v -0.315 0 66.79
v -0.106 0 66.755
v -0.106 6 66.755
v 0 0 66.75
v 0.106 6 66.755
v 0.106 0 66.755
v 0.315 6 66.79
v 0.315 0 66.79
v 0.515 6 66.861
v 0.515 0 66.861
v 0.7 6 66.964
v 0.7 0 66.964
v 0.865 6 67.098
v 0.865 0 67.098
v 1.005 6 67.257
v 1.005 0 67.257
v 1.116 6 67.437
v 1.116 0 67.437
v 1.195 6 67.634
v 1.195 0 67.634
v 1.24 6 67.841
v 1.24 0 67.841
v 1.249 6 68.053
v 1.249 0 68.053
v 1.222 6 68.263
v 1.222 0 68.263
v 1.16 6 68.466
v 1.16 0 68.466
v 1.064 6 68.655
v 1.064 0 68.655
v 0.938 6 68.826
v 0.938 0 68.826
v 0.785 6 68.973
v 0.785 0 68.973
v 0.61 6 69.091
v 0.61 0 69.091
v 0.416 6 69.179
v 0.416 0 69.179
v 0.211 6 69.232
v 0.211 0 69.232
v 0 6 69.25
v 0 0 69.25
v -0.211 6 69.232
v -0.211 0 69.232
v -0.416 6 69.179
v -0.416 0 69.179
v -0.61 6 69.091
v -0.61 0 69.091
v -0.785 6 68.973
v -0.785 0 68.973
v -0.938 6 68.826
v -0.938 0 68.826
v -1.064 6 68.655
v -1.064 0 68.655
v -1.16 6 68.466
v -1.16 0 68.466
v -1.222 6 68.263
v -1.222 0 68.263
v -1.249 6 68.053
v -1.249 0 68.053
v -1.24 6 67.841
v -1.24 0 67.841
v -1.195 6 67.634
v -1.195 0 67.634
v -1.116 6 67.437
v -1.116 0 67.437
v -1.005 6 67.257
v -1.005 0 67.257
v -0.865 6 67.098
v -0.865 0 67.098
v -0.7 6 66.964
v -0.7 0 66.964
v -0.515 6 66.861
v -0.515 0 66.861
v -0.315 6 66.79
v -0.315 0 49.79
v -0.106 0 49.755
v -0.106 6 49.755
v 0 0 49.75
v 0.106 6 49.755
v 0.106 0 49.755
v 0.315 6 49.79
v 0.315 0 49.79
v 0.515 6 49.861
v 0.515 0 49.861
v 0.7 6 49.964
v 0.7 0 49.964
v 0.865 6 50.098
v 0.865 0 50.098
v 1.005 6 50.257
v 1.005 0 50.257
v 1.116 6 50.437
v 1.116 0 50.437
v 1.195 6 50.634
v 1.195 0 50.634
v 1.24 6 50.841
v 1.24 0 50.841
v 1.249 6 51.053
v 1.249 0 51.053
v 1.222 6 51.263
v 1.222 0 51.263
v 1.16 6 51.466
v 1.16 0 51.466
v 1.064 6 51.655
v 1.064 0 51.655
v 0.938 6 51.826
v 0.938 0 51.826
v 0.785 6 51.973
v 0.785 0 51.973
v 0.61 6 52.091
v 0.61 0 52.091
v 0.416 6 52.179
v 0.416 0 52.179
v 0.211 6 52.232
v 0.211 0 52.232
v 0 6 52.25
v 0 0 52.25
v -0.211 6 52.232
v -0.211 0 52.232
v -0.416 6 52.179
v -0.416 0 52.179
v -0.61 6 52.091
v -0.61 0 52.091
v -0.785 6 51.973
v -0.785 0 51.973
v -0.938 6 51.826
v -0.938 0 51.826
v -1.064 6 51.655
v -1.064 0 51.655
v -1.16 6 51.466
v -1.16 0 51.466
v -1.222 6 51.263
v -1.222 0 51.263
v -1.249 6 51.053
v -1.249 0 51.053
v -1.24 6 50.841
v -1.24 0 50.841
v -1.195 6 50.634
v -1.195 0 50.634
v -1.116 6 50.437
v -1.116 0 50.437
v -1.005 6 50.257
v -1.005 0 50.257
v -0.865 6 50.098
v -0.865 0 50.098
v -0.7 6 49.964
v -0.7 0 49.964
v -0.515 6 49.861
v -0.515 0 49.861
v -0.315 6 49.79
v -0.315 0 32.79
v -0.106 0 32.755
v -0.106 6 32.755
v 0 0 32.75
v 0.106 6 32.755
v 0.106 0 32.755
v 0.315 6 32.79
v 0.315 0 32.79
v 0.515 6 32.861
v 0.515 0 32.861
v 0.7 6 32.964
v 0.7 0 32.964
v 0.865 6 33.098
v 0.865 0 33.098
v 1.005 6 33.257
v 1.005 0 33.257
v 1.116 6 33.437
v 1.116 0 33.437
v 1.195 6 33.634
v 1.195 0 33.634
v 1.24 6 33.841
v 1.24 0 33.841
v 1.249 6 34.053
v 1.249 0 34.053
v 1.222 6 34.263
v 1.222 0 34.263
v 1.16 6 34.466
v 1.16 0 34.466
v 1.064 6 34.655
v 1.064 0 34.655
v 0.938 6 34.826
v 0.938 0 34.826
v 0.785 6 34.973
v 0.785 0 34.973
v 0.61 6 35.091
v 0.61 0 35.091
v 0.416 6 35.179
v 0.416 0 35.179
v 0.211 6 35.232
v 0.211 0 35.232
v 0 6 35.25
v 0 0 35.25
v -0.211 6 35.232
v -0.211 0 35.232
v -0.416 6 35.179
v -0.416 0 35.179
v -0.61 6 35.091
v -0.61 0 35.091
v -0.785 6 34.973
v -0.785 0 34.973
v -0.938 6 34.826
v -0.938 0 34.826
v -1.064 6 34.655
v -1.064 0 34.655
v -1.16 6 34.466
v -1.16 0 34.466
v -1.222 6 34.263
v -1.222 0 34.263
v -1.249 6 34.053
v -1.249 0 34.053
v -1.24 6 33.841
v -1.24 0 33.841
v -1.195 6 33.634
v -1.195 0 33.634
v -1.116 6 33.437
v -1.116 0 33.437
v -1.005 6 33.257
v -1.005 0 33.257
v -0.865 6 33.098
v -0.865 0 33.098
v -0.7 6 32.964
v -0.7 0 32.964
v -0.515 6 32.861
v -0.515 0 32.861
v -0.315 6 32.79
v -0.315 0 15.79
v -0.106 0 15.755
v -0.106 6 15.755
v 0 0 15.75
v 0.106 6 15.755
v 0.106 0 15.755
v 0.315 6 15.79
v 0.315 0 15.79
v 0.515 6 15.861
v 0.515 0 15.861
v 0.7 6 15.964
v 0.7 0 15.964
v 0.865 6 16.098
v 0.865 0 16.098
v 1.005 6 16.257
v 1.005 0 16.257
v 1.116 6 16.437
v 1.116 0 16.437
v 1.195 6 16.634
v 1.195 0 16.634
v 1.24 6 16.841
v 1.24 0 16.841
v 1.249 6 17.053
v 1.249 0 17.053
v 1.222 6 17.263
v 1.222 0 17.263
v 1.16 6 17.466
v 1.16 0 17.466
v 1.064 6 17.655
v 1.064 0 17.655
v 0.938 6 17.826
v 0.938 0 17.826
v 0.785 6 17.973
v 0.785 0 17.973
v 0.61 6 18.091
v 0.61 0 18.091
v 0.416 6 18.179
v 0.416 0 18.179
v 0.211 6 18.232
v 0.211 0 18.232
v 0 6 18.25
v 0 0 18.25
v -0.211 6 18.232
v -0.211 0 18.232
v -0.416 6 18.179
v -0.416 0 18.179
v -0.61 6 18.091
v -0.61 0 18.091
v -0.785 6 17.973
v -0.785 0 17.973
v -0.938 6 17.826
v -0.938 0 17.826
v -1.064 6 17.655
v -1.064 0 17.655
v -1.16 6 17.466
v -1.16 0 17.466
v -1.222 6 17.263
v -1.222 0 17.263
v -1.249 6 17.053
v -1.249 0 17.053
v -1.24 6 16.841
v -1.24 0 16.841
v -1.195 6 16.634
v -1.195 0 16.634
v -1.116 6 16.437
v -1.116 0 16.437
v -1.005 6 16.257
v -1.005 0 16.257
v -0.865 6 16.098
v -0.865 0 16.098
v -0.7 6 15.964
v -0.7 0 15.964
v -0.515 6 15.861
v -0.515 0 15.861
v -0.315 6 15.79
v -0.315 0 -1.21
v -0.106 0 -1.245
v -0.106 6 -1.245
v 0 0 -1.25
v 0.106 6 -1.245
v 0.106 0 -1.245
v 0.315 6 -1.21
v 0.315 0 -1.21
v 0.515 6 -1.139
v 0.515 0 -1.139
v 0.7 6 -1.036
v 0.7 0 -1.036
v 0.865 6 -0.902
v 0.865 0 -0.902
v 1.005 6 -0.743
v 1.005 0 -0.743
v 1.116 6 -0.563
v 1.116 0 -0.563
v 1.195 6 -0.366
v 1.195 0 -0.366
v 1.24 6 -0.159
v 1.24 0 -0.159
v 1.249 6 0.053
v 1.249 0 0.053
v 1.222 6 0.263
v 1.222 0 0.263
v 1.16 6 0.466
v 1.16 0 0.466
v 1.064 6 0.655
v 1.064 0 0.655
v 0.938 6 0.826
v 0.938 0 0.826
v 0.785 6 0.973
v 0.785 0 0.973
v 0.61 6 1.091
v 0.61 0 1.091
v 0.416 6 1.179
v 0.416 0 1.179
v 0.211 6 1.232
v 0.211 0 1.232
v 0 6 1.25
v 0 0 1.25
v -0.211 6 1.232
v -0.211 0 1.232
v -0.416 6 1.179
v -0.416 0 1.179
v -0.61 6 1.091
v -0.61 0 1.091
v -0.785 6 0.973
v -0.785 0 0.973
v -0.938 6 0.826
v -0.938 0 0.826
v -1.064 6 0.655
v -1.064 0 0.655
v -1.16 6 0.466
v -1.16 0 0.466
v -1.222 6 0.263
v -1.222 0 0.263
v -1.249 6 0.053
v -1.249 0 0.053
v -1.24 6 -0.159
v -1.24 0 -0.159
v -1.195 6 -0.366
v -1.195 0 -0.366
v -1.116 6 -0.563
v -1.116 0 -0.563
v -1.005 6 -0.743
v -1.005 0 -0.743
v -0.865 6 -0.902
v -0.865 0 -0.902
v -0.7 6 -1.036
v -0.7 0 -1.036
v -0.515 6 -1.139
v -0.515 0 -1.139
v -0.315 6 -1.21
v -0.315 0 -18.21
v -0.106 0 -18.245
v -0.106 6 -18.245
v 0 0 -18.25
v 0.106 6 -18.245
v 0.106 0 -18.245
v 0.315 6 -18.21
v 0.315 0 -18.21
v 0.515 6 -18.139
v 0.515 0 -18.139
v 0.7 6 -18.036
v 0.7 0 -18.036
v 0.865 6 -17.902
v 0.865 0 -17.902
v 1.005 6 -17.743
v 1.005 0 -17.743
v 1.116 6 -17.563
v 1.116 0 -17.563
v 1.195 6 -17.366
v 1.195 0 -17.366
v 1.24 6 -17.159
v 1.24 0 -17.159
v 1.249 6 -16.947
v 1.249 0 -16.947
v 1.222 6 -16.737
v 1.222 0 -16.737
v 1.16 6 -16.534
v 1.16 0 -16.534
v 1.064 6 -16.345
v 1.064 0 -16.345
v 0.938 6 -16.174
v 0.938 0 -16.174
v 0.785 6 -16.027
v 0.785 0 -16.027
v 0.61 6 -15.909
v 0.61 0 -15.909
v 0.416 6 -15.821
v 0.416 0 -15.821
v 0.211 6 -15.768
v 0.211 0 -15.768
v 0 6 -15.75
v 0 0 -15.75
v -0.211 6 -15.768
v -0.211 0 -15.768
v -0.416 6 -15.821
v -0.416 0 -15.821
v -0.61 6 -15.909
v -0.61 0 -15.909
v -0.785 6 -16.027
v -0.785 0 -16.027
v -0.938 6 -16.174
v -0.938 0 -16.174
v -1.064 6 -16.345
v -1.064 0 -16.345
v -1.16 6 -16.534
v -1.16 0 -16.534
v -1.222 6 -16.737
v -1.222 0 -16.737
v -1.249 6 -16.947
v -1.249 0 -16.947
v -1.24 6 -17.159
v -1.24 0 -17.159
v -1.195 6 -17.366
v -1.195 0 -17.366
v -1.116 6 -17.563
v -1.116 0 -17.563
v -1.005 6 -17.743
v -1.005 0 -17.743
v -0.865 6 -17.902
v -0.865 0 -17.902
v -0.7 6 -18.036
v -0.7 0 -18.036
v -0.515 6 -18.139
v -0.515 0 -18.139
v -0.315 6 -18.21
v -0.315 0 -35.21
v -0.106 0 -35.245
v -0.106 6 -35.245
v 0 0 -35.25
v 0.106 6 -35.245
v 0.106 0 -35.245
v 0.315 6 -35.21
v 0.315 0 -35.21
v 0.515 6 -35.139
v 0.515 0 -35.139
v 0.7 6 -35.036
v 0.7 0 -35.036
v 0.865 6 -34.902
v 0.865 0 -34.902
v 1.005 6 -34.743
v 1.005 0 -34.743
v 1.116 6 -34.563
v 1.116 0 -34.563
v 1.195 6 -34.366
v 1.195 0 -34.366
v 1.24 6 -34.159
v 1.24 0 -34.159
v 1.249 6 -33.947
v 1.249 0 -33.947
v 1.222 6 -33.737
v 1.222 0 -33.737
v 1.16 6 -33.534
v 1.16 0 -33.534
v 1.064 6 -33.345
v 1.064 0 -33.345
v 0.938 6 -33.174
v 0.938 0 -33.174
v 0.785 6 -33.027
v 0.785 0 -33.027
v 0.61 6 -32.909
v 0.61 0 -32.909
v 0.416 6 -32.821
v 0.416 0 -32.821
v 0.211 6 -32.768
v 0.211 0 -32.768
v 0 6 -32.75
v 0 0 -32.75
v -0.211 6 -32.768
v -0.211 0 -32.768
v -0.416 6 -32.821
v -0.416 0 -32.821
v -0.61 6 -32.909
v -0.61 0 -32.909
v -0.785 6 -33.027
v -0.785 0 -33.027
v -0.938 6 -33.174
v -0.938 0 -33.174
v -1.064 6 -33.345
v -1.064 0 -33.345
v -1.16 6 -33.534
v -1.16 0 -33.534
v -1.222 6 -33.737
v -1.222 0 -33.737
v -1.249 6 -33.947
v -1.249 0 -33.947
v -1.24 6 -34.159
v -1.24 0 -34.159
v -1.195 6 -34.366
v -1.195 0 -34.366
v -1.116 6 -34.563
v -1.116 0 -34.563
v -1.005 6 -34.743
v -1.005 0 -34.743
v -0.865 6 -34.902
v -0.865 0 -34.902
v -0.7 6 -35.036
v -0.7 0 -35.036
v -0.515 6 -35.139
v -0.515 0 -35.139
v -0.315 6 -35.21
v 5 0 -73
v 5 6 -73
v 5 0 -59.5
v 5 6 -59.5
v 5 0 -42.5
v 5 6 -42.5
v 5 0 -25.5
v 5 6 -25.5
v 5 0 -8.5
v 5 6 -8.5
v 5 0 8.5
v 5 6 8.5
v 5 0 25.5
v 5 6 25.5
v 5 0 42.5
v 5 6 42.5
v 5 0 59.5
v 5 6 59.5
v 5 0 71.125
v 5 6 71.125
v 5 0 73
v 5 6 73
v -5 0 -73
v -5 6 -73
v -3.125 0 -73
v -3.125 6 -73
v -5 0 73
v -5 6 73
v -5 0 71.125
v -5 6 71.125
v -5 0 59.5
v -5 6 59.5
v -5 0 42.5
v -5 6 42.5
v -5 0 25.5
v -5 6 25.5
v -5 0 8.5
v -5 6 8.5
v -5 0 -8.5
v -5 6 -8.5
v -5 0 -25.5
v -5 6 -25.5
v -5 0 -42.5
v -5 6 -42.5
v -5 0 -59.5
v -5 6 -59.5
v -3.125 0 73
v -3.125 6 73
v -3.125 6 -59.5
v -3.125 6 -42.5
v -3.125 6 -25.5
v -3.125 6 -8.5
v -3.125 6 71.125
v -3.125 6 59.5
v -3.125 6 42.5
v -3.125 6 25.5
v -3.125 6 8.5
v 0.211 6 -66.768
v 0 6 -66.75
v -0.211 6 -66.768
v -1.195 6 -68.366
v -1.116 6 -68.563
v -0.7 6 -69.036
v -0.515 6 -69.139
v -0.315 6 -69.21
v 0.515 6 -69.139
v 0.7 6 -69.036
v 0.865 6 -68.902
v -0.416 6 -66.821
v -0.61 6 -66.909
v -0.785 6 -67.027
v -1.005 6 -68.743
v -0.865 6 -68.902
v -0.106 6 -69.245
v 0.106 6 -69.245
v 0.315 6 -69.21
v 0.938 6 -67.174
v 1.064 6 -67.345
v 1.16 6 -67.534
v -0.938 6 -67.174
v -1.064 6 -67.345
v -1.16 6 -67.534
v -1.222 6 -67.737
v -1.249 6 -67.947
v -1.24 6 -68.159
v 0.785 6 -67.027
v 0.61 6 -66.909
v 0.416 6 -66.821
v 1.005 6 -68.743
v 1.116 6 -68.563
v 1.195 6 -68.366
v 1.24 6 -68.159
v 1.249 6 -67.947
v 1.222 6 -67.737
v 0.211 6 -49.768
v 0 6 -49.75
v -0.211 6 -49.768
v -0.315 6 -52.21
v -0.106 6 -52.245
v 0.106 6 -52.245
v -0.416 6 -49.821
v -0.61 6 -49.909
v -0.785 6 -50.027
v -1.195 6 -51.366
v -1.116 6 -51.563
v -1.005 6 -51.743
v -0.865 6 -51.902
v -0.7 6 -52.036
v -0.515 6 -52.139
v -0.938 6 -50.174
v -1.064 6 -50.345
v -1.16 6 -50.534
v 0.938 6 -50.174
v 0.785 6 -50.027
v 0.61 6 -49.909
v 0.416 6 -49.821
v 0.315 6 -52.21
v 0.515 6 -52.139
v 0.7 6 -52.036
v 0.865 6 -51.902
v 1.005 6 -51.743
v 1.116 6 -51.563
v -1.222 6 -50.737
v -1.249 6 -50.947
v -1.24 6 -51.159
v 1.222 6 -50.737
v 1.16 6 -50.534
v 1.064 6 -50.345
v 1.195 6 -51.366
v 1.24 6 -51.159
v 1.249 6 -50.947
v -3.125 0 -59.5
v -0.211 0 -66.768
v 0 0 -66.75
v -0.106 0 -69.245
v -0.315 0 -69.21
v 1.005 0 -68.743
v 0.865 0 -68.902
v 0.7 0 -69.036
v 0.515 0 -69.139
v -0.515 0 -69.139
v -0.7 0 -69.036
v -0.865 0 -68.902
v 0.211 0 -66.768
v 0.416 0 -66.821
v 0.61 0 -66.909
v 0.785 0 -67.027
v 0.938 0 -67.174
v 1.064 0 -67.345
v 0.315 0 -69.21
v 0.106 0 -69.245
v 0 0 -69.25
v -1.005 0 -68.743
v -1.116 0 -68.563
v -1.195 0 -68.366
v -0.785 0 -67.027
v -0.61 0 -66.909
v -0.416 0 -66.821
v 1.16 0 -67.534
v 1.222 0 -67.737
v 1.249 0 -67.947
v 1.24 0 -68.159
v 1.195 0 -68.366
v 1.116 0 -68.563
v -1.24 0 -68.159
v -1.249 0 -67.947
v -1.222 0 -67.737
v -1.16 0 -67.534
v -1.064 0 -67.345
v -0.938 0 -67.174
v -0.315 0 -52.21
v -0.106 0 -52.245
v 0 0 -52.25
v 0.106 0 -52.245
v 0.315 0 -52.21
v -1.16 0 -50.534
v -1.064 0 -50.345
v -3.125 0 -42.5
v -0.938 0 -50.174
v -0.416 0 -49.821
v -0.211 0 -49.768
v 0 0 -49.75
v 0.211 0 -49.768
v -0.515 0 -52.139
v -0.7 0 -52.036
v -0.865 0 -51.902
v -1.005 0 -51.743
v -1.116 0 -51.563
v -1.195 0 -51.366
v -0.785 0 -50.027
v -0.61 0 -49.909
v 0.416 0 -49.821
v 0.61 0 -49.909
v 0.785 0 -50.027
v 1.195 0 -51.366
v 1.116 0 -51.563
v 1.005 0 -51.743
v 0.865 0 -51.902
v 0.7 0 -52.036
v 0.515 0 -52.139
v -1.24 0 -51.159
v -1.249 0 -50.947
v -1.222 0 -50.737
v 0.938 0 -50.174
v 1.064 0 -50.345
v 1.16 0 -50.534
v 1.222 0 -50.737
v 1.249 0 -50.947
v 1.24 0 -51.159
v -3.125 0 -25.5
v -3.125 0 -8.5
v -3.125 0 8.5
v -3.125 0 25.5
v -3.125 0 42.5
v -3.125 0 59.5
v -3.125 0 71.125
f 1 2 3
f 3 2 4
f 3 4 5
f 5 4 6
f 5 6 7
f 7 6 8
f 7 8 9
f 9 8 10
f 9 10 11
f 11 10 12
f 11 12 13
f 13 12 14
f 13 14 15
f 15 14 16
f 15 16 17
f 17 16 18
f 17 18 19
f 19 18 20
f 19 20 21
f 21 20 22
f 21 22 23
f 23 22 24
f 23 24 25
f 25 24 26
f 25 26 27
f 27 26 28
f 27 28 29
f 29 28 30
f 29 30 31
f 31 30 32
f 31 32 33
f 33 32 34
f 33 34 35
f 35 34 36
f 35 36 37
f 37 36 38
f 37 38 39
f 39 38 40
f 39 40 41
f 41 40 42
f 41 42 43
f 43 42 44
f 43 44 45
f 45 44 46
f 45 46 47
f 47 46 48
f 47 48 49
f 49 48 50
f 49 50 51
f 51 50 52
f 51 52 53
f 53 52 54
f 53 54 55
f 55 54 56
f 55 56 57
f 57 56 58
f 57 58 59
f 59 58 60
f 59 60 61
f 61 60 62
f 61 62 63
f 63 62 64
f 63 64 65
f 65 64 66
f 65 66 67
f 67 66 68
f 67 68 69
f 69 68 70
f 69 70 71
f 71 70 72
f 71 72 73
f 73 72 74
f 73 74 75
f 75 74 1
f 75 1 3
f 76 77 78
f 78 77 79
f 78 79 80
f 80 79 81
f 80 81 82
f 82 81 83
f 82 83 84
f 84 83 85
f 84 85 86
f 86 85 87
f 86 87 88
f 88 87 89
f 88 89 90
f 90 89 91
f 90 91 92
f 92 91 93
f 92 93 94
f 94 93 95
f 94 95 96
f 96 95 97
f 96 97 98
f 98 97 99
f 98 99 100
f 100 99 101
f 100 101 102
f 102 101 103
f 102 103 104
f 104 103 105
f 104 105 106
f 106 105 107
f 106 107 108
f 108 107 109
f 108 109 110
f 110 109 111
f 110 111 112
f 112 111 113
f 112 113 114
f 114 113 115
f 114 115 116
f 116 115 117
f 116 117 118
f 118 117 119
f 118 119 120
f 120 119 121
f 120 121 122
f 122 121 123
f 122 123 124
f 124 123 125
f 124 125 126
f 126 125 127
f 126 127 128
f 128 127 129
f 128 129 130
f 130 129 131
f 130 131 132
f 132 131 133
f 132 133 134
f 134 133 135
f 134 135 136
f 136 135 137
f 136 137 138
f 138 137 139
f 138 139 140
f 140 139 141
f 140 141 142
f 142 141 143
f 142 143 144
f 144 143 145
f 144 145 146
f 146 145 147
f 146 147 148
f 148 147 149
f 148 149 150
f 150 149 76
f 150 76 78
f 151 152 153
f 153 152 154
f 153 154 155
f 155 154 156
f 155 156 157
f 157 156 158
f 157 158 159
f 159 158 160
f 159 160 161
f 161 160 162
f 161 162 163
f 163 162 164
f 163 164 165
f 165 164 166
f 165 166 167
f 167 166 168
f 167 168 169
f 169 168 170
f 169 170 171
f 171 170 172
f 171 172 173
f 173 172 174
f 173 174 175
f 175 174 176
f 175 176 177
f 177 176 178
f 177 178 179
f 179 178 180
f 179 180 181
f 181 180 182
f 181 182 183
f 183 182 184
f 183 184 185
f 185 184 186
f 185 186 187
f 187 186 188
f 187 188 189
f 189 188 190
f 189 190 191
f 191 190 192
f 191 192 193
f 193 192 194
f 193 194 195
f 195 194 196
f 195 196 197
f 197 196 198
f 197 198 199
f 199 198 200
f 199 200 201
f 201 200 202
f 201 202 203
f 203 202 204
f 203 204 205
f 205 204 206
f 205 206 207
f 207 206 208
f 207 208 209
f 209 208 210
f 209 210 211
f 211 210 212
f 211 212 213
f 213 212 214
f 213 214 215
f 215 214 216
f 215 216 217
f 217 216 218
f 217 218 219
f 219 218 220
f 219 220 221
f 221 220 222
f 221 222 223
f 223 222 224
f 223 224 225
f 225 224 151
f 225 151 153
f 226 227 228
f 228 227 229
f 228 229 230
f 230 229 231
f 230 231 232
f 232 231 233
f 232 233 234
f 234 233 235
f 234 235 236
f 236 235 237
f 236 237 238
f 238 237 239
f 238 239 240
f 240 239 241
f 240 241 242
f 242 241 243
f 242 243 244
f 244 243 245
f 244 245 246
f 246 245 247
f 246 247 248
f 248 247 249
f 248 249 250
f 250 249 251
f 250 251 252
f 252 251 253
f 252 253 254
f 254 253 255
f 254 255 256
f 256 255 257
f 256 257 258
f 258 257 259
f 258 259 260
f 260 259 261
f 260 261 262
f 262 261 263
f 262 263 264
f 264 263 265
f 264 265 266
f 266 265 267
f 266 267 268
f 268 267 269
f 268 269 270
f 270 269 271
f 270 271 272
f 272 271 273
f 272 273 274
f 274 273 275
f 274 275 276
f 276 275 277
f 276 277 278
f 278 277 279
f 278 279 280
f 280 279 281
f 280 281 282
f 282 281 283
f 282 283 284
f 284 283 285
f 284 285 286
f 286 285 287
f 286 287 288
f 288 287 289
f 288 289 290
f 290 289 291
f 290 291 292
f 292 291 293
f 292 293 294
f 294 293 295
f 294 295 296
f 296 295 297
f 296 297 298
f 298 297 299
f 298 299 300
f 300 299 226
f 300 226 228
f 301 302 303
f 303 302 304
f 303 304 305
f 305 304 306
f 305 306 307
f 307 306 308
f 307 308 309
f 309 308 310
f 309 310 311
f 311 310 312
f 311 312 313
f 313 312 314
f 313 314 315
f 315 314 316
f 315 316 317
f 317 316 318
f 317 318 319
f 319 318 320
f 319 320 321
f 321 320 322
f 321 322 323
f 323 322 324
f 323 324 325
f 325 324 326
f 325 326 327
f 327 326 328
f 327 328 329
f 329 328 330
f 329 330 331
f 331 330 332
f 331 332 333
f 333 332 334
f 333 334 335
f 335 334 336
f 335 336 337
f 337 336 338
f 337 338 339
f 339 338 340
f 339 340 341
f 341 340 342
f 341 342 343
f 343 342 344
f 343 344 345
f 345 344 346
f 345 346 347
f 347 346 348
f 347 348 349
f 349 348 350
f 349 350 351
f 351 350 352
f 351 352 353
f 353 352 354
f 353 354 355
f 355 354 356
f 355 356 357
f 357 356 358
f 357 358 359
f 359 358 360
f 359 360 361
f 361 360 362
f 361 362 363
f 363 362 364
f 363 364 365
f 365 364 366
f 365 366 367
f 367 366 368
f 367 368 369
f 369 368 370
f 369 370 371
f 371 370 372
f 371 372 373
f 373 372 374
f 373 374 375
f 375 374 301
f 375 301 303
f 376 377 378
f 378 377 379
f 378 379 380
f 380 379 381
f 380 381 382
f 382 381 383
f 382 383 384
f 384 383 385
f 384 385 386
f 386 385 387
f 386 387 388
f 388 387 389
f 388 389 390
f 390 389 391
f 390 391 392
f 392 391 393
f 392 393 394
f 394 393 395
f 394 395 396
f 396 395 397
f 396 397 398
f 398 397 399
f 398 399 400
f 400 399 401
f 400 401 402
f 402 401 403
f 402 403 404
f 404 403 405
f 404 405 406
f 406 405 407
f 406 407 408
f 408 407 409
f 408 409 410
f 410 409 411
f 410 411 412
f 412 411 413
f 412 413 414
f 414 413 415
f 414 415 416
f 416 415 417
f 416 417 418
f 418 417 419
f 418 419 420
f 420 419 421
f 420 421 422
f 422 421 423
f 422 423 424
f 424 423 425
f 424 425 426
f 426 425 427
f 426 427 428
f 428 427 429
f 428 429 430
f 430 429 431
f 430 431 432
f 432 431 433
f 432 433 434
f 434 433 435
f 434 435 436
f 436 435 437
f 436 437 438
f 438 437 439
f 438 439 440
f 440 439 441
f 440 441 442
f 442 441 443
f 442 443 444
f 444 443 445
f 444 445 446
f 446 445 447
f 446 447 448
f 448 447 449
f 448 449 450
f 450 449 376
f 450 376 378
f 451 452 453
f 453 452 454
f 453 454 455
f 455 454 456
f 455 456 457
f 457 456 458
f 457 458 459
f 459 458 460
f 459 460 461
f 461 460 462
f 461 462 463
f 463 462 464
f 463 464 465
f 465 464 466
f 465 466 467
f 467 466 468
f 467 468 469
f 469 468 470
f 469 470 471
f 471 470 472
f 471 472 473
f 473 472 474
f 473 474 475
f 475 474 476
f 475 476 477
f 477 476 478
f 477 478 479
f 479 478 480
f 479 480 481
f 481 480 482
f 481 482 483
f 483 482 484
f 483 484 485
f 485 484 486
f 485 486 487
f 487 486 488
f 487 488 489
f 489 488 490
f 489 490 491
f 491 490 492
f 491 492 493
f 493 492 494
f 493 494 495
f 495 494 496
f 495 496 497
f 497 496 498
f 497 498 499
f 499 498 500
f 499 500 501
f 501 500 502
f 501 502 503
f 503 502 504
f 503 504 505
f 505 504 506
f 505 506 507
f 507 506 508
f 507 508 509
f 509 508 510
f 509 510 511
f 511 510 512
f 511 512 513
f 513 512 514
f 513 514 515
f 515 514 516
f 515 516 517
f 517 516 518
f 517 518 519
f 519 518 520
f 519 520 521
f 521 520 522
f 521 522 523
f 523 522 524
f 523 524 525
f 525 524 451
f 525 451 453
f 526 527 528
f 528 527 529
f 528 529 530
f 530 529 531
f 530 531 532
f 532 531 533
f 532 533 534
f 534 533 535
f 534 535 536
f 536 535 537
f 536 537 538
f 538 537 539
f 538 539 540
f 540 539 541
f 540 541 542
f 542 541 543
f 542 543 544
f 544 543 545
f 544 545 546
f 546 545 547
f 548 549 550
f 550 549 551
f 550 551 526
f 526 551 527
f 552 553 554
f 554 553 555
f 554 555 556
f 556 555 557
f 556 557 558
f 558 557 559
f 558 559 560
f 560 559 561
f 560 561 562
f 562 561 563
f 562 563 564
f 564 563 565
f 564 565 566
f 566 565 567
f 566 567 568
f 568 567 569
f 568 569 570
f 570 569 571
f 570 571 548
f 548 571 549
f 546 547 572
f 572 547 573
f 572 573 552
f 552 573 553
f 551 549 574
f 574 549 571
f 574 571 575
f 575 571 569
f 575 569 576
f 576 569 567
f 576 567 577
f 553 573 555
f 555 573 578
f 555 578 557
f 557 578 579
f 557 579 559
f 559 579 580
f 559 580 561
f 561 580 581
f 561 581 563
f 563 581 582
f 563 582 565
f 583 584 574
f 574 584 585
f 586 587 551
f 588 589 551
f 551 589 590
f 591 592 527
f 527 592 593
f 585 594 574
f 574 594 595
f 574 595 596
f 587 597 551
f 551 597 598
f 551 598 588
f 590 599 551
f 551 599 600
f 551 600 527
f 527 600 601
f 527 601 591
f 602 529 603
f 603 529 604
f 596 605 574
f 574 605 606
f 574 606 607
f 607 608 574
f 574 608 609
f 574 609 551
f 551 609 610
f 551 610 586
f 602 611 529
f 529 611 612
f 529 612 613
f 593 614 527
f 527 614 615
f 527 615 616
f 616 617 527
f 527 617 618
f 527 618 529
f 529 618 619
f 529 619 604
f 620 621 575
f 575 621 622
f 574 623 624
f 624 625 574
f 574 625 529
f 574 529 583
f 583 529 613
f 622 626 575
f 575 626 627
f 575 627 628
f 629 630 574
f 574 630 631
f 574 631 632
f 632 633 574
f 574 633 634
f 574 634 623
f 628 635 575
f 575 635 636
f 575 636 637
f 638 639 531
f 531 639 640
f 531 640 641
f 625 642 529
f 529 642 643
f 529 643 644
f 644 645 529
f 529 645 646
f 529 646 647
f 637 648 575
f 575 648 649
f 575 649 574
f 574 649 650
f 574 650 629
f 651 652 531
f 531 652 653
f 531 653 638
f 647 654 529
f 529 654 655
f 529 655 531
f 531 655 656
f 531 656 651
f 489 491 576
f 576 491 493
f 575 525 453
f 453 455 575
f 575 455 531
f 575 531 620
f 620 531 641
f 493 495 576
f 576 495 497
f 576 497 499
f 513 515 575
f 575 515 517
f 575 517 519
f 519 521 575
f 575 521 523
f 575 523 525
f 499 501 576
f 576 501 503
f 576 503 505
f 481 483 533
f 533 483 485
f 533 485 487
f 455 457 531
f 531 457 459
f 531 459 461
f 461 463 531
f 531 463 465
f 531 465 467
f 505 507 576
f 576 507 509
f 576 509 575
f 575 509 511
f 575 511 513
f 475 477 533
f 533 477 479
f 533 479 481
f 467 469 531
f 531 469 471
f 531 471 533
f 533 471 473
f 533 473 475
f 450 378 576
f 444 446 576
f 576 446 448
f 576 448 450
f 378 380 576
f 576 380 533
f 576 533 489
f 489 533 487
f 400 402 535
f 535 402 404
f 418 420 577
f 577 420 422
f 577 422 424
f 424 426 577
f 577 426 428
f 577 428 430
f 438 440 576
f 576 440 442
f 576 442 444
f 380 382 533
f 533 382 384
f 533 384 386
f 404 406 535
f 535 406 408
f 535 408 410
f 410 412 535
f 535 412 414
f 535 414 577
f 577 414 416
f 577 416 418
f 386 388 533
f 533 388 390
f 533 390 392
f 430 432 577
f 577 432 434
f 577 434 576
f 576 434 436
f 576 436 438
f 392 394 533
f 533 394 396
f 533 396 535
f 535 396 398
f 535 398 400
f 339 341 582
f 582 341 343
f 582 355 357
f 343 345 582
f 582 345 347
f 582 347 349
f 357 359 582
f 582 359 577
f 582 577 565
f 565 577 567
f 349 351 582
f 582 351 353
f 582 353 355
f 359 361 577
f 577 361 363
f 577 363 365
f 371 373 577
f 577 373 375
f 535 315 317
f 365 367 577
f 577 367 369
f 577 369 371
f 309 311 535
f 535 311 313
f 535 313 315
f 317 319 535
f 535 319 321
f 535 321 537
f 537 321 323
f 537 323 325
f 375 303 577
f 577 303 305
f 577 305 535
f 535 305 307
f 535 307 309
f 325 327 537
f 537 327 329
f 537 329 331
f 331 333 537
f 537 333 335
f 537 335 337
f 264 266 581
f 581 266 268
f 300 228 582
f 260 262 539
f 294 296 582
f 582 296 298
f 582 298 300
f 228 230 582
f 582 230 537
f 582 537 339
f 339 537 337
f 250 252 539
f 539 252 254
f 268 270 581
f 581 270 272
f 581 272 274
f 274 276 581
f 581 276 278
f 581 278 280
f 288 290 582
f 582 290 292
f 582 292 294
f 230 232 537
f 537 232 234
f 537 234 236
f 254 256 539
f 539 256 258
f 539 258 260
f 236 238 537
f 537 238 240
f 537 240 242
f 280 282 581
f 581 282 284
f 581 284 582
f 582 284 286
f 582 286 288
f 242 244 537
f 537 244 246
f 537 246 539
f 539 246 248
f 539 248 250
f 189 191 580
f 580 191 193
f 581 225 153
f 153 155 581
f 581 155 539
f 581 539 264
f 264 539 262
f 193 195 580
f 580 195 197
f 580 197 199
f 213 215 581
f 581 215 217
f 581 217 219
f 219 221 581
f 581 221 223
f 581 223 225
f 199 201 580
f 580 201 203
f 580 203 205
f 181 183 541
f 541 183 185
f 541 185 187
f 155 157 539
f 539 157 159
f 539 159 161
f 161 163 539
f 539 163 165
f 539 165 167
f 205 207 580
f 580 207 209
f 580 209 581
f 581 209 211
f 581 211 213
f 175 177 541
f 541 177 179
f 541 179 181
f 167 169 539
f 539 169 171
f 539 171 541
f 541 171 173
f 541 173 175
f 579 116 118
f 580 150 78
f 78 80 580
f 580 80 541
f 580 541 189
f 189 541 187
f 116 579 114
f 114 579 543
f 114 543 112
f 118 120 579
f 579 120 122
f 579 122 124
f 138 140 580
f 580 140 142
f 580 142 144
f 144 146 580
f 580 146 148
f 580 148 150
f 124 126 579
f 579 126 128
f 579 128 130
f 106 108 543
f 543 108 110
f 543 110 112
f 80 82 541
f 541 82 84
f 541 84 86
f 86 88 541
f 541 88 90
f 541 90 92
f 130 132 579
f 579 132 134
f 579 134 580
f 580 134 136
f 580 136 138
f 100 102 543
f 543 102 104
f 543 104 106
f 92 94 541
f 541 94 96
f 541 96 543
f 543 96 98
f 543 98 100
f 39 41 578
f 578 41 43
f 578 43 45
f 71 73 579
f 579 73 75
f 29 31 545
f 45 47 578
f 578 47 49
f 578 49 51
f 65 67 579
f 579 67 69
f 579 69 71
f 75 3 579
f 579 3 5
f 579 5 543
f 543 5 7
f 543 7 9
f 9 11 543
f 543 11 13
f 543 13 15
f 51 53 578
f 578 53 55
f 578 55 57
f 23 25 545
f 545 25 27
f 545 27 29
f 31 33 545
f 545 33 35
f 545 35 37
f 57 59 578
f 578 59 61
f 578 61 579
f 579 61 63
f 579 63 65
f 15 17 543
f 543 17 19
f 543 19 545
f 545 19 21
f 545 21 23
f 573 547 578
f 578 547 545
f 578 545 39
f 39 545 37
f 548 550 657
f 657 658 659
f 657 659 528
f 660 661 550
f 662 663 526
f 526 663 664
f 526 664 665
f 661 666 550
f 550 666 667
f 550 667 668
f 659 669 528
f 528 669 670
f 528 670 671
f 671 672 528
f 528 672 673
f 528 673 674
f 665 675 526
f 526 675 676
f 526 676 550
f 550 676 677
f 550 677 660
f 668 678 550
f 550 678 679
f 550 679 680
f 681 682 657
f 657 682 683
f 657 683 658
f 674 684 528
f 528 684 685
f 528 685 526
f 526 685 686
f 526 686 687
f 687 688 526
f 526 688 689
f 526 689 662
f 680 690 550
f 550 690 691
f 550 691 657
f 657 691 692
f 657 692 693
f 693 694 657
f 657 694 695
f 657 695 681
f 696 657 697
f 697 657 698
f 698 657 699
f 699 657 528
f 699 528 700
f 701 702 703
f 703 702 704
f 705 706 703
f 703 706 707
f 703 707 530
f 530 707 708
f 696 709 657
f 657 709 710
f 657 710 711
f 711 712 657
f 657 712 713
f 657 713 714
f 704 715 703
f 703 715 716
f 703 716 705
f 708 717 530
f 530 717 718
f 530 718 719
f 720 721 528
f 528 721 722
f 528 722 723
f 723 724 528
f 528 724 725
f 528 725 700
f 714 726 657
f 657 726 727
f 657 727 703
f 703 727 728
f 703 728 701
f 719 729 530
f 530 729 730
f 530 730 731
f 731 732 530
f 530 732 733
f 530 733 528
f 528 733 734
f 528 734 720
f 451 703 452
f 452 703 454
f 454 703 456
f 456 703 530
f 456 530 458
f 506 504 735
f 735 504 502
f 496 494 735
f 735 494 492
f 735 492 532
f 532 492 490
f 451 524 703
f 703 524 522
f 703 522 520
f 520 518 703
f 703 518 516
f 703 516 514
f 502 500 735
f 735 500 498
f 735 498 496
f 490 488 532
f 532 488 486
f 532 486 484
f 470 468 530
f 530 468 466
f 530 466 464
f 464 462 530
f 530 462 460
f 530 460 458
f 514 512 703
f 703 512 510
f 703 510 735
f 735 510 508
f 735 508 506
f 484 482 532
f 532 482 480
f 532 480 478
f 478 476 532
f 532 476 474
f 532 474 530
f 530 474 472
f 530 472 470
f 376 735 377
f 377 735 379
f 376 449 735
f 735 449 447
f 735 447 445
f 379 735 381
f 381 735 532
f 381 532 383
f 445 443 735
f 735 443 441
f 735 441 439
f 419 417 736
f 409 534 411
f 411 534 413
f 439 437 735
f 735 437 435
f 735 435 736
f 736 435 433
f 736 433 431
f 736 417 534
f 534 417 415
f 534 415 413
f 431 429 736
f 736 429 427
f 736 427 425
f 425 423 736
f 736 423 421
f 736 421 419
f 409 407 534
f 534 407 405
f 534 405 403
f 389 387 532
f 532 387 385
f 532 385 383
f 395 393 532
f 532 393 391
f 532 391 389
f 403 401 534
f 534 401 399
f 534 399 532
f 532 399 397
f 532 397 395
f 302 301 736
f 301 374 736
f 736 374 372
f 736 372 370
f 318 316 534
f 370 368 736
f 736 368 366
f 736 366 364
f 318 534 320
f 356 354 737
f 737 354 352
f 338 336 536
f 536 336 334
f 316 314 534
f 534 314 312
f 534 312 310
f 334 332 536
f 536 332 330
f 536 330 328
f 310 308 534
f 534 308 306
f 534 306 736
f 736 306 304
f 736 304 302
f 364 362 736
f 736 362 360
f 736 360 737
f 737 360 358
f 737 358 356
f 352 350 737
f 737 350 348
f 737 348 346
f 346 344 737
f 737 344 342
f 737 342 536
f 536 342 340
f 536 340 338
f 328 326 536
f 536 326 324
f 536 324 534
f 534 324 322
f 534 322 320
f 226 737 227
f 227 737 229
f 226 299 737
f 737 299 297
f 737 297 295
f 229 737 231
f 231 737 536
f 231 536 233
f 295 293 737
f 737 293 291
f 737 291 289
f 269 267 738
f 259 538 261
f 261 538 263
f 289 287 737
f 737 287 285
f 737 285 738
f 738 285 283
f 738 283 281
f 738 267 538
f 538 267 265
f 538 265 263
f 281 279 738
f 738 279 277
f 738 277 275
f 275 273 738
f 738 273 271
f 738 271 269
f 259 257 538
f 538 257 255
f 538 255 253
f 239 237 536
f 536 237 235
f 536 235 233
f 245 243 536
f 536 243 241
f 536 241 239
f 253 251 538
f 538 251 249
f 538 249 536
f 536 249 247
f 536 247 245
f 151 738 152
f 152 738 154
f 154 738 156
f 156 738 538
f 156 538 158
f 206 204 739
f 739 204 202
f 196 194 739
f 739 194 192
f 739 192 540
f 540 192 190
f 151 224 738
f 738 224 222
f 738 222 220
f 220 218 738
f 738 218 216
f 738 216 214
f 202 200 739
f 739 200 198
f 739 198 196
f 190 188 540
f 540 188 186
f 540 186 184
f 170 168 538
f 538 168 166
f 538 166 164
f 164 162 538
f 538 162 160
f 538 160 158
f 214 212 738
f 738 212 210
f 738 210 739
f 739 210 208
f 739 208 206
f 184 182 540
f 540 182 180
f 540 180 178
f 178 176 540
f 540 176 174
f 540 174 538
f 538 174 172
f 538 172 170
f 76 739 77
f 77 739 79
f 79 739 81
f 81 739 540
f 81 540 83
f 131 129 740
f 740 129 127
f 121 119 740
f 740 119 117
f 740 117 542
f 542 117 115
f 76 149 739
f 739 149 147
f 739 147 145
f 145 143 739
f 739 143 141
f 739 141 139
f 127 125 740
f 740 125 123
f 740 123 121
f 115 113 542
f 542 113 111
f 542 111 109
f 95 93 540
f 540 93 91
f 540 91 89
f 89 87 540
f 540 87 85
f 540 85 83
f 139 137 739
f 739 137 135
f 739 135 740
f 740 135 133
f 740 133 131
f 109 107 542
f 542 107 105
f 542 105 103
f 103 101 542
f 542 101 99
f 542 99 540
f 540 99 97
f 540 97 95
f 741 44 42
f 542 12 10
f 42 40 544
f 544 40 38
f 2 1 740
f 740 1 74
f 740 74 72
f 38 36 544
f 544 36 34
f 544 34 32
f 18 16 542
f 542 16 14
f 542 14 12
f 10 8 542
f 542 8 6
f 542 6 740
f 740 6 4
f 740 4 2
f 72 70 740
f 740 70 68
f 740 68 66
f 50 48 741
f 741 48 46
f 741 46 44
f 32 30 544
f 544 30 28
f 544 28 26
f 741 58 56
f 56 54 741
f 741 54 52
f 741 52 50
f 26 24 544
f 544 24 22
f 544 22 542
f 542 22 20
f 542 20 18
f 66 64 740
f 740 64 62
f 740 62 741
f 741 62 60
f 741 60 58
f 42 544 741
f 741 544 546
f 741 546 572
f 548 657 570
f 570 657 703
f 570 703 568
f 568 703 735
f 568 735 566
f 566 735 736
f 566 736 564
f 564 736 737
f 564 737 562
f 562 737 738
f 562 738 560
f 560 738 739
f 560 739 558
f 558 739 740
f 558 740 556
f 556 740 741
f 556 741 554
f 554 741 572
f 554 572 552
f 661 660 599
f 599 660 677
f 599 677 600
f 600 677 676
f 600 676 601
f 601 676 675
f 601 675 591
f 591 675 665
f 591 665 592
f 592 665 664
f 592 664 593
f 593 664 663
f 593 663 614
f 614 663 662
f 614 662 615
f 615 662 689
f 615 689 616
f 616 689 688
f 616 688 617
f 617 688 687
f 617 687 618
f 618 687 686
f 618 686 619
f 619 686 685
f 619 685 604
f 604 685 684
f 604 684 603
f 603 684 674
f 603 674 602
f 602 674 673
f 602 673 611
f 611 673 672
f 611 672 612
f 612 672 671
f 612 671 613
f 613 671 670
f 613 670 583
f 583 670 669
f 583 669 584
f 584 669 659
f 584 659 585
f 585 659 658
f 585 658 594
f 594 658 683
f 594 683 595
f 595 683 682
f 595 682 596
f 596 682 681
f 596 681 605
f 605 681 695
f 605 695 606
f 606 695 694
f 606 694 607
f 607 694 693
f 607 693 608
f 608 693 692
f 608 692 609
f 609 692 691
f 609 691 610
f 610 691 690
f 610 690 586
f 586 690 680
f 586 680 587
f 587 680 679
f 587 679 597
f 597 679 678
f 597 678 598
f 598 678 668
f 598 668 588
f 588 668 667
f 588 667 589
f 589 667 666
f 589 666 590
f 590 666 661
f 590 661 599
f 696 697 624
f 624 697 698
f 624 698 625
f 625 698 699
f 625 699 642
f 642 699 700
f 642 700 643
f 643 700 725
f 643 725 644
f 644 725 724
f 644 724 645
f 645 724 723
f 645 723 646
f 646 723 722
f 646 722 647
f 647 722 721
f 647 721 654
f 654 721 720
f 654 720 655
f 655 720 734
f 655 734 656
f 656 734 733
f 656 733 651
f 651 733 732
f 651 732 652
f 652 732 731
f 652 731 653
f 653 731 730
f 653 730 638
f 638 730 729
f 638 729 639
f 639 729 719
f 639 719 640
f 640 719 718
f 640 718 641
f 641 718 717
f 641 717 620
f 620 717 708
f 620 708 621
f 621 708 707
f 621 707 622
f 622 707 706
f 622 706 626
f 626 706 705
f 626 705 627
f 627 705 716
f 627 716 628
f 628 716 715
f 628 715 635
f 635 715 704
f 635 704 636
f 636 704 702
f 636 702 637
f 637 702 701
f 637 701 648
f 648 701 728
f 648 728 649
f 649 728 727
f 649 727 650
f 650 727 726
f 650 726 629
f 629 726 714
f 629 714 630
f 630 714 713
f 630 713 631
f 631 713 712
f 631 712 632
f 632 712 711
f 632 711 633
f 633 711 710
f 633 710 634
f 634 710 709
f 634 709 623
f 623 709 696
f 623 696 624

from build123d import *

# Parameters (mm, degrees)
SKETCH1_W           = 10
SKETCH1_H           = 146
BOSS_EXTRUDE1_DEPTH = 6
CUT_EXTRUDE1_REACH  = 75.417
SKETCH2_R           = 1.25
LPATTERN1_COUNT     = 9
LPATTERN1_PITCH     = 17


with BuildPart() as part:
    # Sketch1 → Boss-Extrude1 (new body)
    with BuildSketch(Plane(origin=(0, 0, 0), x_dir=(1, 0, 0), z_dir=(0, 1, 0))):
        Rectangle(SKETCH1_W, SKETCH1_H)
    extrude(amount=BOSS_EXTRUDE1_DEPTH)

    # Sketch2 → Cut-Extrude1 (cut, up to next)
    with BuildSketch(Plane(origin=(0, 6, 0), x_dir=(1, 0, 0), z_dir=(0, 1, 0)), mode=Mode.PRIVATE) as cut_extrude1_sk1:
        with Locations(Location((0, 68, 0), (0, 0, 270))):
            Circle(SKETCH2_R)
    cut_extrude1_tool1 = extrude(cut_extrude1_sk1.sketch, amount=-CUT_EXTRUDE1_REACH, mode=Mode.PRIVATE) & part.part
    cut_extrude1 = cut_extrude1_tool1.solids().sort_by_distance((0, 6, -68))[0]
    add(cut_extrude1, mode=Mode.SUBTRACT)

    # LPattern1: Cut-Extrude1 ×9
    with Locations(*[(0, 0, i * LPATTERN1_PITCH) for i in range(1, LPATTERN1_COUNT)]):
        add(cut_extrude1, mode=Mode.SUBTRACT)


solid = part.part
